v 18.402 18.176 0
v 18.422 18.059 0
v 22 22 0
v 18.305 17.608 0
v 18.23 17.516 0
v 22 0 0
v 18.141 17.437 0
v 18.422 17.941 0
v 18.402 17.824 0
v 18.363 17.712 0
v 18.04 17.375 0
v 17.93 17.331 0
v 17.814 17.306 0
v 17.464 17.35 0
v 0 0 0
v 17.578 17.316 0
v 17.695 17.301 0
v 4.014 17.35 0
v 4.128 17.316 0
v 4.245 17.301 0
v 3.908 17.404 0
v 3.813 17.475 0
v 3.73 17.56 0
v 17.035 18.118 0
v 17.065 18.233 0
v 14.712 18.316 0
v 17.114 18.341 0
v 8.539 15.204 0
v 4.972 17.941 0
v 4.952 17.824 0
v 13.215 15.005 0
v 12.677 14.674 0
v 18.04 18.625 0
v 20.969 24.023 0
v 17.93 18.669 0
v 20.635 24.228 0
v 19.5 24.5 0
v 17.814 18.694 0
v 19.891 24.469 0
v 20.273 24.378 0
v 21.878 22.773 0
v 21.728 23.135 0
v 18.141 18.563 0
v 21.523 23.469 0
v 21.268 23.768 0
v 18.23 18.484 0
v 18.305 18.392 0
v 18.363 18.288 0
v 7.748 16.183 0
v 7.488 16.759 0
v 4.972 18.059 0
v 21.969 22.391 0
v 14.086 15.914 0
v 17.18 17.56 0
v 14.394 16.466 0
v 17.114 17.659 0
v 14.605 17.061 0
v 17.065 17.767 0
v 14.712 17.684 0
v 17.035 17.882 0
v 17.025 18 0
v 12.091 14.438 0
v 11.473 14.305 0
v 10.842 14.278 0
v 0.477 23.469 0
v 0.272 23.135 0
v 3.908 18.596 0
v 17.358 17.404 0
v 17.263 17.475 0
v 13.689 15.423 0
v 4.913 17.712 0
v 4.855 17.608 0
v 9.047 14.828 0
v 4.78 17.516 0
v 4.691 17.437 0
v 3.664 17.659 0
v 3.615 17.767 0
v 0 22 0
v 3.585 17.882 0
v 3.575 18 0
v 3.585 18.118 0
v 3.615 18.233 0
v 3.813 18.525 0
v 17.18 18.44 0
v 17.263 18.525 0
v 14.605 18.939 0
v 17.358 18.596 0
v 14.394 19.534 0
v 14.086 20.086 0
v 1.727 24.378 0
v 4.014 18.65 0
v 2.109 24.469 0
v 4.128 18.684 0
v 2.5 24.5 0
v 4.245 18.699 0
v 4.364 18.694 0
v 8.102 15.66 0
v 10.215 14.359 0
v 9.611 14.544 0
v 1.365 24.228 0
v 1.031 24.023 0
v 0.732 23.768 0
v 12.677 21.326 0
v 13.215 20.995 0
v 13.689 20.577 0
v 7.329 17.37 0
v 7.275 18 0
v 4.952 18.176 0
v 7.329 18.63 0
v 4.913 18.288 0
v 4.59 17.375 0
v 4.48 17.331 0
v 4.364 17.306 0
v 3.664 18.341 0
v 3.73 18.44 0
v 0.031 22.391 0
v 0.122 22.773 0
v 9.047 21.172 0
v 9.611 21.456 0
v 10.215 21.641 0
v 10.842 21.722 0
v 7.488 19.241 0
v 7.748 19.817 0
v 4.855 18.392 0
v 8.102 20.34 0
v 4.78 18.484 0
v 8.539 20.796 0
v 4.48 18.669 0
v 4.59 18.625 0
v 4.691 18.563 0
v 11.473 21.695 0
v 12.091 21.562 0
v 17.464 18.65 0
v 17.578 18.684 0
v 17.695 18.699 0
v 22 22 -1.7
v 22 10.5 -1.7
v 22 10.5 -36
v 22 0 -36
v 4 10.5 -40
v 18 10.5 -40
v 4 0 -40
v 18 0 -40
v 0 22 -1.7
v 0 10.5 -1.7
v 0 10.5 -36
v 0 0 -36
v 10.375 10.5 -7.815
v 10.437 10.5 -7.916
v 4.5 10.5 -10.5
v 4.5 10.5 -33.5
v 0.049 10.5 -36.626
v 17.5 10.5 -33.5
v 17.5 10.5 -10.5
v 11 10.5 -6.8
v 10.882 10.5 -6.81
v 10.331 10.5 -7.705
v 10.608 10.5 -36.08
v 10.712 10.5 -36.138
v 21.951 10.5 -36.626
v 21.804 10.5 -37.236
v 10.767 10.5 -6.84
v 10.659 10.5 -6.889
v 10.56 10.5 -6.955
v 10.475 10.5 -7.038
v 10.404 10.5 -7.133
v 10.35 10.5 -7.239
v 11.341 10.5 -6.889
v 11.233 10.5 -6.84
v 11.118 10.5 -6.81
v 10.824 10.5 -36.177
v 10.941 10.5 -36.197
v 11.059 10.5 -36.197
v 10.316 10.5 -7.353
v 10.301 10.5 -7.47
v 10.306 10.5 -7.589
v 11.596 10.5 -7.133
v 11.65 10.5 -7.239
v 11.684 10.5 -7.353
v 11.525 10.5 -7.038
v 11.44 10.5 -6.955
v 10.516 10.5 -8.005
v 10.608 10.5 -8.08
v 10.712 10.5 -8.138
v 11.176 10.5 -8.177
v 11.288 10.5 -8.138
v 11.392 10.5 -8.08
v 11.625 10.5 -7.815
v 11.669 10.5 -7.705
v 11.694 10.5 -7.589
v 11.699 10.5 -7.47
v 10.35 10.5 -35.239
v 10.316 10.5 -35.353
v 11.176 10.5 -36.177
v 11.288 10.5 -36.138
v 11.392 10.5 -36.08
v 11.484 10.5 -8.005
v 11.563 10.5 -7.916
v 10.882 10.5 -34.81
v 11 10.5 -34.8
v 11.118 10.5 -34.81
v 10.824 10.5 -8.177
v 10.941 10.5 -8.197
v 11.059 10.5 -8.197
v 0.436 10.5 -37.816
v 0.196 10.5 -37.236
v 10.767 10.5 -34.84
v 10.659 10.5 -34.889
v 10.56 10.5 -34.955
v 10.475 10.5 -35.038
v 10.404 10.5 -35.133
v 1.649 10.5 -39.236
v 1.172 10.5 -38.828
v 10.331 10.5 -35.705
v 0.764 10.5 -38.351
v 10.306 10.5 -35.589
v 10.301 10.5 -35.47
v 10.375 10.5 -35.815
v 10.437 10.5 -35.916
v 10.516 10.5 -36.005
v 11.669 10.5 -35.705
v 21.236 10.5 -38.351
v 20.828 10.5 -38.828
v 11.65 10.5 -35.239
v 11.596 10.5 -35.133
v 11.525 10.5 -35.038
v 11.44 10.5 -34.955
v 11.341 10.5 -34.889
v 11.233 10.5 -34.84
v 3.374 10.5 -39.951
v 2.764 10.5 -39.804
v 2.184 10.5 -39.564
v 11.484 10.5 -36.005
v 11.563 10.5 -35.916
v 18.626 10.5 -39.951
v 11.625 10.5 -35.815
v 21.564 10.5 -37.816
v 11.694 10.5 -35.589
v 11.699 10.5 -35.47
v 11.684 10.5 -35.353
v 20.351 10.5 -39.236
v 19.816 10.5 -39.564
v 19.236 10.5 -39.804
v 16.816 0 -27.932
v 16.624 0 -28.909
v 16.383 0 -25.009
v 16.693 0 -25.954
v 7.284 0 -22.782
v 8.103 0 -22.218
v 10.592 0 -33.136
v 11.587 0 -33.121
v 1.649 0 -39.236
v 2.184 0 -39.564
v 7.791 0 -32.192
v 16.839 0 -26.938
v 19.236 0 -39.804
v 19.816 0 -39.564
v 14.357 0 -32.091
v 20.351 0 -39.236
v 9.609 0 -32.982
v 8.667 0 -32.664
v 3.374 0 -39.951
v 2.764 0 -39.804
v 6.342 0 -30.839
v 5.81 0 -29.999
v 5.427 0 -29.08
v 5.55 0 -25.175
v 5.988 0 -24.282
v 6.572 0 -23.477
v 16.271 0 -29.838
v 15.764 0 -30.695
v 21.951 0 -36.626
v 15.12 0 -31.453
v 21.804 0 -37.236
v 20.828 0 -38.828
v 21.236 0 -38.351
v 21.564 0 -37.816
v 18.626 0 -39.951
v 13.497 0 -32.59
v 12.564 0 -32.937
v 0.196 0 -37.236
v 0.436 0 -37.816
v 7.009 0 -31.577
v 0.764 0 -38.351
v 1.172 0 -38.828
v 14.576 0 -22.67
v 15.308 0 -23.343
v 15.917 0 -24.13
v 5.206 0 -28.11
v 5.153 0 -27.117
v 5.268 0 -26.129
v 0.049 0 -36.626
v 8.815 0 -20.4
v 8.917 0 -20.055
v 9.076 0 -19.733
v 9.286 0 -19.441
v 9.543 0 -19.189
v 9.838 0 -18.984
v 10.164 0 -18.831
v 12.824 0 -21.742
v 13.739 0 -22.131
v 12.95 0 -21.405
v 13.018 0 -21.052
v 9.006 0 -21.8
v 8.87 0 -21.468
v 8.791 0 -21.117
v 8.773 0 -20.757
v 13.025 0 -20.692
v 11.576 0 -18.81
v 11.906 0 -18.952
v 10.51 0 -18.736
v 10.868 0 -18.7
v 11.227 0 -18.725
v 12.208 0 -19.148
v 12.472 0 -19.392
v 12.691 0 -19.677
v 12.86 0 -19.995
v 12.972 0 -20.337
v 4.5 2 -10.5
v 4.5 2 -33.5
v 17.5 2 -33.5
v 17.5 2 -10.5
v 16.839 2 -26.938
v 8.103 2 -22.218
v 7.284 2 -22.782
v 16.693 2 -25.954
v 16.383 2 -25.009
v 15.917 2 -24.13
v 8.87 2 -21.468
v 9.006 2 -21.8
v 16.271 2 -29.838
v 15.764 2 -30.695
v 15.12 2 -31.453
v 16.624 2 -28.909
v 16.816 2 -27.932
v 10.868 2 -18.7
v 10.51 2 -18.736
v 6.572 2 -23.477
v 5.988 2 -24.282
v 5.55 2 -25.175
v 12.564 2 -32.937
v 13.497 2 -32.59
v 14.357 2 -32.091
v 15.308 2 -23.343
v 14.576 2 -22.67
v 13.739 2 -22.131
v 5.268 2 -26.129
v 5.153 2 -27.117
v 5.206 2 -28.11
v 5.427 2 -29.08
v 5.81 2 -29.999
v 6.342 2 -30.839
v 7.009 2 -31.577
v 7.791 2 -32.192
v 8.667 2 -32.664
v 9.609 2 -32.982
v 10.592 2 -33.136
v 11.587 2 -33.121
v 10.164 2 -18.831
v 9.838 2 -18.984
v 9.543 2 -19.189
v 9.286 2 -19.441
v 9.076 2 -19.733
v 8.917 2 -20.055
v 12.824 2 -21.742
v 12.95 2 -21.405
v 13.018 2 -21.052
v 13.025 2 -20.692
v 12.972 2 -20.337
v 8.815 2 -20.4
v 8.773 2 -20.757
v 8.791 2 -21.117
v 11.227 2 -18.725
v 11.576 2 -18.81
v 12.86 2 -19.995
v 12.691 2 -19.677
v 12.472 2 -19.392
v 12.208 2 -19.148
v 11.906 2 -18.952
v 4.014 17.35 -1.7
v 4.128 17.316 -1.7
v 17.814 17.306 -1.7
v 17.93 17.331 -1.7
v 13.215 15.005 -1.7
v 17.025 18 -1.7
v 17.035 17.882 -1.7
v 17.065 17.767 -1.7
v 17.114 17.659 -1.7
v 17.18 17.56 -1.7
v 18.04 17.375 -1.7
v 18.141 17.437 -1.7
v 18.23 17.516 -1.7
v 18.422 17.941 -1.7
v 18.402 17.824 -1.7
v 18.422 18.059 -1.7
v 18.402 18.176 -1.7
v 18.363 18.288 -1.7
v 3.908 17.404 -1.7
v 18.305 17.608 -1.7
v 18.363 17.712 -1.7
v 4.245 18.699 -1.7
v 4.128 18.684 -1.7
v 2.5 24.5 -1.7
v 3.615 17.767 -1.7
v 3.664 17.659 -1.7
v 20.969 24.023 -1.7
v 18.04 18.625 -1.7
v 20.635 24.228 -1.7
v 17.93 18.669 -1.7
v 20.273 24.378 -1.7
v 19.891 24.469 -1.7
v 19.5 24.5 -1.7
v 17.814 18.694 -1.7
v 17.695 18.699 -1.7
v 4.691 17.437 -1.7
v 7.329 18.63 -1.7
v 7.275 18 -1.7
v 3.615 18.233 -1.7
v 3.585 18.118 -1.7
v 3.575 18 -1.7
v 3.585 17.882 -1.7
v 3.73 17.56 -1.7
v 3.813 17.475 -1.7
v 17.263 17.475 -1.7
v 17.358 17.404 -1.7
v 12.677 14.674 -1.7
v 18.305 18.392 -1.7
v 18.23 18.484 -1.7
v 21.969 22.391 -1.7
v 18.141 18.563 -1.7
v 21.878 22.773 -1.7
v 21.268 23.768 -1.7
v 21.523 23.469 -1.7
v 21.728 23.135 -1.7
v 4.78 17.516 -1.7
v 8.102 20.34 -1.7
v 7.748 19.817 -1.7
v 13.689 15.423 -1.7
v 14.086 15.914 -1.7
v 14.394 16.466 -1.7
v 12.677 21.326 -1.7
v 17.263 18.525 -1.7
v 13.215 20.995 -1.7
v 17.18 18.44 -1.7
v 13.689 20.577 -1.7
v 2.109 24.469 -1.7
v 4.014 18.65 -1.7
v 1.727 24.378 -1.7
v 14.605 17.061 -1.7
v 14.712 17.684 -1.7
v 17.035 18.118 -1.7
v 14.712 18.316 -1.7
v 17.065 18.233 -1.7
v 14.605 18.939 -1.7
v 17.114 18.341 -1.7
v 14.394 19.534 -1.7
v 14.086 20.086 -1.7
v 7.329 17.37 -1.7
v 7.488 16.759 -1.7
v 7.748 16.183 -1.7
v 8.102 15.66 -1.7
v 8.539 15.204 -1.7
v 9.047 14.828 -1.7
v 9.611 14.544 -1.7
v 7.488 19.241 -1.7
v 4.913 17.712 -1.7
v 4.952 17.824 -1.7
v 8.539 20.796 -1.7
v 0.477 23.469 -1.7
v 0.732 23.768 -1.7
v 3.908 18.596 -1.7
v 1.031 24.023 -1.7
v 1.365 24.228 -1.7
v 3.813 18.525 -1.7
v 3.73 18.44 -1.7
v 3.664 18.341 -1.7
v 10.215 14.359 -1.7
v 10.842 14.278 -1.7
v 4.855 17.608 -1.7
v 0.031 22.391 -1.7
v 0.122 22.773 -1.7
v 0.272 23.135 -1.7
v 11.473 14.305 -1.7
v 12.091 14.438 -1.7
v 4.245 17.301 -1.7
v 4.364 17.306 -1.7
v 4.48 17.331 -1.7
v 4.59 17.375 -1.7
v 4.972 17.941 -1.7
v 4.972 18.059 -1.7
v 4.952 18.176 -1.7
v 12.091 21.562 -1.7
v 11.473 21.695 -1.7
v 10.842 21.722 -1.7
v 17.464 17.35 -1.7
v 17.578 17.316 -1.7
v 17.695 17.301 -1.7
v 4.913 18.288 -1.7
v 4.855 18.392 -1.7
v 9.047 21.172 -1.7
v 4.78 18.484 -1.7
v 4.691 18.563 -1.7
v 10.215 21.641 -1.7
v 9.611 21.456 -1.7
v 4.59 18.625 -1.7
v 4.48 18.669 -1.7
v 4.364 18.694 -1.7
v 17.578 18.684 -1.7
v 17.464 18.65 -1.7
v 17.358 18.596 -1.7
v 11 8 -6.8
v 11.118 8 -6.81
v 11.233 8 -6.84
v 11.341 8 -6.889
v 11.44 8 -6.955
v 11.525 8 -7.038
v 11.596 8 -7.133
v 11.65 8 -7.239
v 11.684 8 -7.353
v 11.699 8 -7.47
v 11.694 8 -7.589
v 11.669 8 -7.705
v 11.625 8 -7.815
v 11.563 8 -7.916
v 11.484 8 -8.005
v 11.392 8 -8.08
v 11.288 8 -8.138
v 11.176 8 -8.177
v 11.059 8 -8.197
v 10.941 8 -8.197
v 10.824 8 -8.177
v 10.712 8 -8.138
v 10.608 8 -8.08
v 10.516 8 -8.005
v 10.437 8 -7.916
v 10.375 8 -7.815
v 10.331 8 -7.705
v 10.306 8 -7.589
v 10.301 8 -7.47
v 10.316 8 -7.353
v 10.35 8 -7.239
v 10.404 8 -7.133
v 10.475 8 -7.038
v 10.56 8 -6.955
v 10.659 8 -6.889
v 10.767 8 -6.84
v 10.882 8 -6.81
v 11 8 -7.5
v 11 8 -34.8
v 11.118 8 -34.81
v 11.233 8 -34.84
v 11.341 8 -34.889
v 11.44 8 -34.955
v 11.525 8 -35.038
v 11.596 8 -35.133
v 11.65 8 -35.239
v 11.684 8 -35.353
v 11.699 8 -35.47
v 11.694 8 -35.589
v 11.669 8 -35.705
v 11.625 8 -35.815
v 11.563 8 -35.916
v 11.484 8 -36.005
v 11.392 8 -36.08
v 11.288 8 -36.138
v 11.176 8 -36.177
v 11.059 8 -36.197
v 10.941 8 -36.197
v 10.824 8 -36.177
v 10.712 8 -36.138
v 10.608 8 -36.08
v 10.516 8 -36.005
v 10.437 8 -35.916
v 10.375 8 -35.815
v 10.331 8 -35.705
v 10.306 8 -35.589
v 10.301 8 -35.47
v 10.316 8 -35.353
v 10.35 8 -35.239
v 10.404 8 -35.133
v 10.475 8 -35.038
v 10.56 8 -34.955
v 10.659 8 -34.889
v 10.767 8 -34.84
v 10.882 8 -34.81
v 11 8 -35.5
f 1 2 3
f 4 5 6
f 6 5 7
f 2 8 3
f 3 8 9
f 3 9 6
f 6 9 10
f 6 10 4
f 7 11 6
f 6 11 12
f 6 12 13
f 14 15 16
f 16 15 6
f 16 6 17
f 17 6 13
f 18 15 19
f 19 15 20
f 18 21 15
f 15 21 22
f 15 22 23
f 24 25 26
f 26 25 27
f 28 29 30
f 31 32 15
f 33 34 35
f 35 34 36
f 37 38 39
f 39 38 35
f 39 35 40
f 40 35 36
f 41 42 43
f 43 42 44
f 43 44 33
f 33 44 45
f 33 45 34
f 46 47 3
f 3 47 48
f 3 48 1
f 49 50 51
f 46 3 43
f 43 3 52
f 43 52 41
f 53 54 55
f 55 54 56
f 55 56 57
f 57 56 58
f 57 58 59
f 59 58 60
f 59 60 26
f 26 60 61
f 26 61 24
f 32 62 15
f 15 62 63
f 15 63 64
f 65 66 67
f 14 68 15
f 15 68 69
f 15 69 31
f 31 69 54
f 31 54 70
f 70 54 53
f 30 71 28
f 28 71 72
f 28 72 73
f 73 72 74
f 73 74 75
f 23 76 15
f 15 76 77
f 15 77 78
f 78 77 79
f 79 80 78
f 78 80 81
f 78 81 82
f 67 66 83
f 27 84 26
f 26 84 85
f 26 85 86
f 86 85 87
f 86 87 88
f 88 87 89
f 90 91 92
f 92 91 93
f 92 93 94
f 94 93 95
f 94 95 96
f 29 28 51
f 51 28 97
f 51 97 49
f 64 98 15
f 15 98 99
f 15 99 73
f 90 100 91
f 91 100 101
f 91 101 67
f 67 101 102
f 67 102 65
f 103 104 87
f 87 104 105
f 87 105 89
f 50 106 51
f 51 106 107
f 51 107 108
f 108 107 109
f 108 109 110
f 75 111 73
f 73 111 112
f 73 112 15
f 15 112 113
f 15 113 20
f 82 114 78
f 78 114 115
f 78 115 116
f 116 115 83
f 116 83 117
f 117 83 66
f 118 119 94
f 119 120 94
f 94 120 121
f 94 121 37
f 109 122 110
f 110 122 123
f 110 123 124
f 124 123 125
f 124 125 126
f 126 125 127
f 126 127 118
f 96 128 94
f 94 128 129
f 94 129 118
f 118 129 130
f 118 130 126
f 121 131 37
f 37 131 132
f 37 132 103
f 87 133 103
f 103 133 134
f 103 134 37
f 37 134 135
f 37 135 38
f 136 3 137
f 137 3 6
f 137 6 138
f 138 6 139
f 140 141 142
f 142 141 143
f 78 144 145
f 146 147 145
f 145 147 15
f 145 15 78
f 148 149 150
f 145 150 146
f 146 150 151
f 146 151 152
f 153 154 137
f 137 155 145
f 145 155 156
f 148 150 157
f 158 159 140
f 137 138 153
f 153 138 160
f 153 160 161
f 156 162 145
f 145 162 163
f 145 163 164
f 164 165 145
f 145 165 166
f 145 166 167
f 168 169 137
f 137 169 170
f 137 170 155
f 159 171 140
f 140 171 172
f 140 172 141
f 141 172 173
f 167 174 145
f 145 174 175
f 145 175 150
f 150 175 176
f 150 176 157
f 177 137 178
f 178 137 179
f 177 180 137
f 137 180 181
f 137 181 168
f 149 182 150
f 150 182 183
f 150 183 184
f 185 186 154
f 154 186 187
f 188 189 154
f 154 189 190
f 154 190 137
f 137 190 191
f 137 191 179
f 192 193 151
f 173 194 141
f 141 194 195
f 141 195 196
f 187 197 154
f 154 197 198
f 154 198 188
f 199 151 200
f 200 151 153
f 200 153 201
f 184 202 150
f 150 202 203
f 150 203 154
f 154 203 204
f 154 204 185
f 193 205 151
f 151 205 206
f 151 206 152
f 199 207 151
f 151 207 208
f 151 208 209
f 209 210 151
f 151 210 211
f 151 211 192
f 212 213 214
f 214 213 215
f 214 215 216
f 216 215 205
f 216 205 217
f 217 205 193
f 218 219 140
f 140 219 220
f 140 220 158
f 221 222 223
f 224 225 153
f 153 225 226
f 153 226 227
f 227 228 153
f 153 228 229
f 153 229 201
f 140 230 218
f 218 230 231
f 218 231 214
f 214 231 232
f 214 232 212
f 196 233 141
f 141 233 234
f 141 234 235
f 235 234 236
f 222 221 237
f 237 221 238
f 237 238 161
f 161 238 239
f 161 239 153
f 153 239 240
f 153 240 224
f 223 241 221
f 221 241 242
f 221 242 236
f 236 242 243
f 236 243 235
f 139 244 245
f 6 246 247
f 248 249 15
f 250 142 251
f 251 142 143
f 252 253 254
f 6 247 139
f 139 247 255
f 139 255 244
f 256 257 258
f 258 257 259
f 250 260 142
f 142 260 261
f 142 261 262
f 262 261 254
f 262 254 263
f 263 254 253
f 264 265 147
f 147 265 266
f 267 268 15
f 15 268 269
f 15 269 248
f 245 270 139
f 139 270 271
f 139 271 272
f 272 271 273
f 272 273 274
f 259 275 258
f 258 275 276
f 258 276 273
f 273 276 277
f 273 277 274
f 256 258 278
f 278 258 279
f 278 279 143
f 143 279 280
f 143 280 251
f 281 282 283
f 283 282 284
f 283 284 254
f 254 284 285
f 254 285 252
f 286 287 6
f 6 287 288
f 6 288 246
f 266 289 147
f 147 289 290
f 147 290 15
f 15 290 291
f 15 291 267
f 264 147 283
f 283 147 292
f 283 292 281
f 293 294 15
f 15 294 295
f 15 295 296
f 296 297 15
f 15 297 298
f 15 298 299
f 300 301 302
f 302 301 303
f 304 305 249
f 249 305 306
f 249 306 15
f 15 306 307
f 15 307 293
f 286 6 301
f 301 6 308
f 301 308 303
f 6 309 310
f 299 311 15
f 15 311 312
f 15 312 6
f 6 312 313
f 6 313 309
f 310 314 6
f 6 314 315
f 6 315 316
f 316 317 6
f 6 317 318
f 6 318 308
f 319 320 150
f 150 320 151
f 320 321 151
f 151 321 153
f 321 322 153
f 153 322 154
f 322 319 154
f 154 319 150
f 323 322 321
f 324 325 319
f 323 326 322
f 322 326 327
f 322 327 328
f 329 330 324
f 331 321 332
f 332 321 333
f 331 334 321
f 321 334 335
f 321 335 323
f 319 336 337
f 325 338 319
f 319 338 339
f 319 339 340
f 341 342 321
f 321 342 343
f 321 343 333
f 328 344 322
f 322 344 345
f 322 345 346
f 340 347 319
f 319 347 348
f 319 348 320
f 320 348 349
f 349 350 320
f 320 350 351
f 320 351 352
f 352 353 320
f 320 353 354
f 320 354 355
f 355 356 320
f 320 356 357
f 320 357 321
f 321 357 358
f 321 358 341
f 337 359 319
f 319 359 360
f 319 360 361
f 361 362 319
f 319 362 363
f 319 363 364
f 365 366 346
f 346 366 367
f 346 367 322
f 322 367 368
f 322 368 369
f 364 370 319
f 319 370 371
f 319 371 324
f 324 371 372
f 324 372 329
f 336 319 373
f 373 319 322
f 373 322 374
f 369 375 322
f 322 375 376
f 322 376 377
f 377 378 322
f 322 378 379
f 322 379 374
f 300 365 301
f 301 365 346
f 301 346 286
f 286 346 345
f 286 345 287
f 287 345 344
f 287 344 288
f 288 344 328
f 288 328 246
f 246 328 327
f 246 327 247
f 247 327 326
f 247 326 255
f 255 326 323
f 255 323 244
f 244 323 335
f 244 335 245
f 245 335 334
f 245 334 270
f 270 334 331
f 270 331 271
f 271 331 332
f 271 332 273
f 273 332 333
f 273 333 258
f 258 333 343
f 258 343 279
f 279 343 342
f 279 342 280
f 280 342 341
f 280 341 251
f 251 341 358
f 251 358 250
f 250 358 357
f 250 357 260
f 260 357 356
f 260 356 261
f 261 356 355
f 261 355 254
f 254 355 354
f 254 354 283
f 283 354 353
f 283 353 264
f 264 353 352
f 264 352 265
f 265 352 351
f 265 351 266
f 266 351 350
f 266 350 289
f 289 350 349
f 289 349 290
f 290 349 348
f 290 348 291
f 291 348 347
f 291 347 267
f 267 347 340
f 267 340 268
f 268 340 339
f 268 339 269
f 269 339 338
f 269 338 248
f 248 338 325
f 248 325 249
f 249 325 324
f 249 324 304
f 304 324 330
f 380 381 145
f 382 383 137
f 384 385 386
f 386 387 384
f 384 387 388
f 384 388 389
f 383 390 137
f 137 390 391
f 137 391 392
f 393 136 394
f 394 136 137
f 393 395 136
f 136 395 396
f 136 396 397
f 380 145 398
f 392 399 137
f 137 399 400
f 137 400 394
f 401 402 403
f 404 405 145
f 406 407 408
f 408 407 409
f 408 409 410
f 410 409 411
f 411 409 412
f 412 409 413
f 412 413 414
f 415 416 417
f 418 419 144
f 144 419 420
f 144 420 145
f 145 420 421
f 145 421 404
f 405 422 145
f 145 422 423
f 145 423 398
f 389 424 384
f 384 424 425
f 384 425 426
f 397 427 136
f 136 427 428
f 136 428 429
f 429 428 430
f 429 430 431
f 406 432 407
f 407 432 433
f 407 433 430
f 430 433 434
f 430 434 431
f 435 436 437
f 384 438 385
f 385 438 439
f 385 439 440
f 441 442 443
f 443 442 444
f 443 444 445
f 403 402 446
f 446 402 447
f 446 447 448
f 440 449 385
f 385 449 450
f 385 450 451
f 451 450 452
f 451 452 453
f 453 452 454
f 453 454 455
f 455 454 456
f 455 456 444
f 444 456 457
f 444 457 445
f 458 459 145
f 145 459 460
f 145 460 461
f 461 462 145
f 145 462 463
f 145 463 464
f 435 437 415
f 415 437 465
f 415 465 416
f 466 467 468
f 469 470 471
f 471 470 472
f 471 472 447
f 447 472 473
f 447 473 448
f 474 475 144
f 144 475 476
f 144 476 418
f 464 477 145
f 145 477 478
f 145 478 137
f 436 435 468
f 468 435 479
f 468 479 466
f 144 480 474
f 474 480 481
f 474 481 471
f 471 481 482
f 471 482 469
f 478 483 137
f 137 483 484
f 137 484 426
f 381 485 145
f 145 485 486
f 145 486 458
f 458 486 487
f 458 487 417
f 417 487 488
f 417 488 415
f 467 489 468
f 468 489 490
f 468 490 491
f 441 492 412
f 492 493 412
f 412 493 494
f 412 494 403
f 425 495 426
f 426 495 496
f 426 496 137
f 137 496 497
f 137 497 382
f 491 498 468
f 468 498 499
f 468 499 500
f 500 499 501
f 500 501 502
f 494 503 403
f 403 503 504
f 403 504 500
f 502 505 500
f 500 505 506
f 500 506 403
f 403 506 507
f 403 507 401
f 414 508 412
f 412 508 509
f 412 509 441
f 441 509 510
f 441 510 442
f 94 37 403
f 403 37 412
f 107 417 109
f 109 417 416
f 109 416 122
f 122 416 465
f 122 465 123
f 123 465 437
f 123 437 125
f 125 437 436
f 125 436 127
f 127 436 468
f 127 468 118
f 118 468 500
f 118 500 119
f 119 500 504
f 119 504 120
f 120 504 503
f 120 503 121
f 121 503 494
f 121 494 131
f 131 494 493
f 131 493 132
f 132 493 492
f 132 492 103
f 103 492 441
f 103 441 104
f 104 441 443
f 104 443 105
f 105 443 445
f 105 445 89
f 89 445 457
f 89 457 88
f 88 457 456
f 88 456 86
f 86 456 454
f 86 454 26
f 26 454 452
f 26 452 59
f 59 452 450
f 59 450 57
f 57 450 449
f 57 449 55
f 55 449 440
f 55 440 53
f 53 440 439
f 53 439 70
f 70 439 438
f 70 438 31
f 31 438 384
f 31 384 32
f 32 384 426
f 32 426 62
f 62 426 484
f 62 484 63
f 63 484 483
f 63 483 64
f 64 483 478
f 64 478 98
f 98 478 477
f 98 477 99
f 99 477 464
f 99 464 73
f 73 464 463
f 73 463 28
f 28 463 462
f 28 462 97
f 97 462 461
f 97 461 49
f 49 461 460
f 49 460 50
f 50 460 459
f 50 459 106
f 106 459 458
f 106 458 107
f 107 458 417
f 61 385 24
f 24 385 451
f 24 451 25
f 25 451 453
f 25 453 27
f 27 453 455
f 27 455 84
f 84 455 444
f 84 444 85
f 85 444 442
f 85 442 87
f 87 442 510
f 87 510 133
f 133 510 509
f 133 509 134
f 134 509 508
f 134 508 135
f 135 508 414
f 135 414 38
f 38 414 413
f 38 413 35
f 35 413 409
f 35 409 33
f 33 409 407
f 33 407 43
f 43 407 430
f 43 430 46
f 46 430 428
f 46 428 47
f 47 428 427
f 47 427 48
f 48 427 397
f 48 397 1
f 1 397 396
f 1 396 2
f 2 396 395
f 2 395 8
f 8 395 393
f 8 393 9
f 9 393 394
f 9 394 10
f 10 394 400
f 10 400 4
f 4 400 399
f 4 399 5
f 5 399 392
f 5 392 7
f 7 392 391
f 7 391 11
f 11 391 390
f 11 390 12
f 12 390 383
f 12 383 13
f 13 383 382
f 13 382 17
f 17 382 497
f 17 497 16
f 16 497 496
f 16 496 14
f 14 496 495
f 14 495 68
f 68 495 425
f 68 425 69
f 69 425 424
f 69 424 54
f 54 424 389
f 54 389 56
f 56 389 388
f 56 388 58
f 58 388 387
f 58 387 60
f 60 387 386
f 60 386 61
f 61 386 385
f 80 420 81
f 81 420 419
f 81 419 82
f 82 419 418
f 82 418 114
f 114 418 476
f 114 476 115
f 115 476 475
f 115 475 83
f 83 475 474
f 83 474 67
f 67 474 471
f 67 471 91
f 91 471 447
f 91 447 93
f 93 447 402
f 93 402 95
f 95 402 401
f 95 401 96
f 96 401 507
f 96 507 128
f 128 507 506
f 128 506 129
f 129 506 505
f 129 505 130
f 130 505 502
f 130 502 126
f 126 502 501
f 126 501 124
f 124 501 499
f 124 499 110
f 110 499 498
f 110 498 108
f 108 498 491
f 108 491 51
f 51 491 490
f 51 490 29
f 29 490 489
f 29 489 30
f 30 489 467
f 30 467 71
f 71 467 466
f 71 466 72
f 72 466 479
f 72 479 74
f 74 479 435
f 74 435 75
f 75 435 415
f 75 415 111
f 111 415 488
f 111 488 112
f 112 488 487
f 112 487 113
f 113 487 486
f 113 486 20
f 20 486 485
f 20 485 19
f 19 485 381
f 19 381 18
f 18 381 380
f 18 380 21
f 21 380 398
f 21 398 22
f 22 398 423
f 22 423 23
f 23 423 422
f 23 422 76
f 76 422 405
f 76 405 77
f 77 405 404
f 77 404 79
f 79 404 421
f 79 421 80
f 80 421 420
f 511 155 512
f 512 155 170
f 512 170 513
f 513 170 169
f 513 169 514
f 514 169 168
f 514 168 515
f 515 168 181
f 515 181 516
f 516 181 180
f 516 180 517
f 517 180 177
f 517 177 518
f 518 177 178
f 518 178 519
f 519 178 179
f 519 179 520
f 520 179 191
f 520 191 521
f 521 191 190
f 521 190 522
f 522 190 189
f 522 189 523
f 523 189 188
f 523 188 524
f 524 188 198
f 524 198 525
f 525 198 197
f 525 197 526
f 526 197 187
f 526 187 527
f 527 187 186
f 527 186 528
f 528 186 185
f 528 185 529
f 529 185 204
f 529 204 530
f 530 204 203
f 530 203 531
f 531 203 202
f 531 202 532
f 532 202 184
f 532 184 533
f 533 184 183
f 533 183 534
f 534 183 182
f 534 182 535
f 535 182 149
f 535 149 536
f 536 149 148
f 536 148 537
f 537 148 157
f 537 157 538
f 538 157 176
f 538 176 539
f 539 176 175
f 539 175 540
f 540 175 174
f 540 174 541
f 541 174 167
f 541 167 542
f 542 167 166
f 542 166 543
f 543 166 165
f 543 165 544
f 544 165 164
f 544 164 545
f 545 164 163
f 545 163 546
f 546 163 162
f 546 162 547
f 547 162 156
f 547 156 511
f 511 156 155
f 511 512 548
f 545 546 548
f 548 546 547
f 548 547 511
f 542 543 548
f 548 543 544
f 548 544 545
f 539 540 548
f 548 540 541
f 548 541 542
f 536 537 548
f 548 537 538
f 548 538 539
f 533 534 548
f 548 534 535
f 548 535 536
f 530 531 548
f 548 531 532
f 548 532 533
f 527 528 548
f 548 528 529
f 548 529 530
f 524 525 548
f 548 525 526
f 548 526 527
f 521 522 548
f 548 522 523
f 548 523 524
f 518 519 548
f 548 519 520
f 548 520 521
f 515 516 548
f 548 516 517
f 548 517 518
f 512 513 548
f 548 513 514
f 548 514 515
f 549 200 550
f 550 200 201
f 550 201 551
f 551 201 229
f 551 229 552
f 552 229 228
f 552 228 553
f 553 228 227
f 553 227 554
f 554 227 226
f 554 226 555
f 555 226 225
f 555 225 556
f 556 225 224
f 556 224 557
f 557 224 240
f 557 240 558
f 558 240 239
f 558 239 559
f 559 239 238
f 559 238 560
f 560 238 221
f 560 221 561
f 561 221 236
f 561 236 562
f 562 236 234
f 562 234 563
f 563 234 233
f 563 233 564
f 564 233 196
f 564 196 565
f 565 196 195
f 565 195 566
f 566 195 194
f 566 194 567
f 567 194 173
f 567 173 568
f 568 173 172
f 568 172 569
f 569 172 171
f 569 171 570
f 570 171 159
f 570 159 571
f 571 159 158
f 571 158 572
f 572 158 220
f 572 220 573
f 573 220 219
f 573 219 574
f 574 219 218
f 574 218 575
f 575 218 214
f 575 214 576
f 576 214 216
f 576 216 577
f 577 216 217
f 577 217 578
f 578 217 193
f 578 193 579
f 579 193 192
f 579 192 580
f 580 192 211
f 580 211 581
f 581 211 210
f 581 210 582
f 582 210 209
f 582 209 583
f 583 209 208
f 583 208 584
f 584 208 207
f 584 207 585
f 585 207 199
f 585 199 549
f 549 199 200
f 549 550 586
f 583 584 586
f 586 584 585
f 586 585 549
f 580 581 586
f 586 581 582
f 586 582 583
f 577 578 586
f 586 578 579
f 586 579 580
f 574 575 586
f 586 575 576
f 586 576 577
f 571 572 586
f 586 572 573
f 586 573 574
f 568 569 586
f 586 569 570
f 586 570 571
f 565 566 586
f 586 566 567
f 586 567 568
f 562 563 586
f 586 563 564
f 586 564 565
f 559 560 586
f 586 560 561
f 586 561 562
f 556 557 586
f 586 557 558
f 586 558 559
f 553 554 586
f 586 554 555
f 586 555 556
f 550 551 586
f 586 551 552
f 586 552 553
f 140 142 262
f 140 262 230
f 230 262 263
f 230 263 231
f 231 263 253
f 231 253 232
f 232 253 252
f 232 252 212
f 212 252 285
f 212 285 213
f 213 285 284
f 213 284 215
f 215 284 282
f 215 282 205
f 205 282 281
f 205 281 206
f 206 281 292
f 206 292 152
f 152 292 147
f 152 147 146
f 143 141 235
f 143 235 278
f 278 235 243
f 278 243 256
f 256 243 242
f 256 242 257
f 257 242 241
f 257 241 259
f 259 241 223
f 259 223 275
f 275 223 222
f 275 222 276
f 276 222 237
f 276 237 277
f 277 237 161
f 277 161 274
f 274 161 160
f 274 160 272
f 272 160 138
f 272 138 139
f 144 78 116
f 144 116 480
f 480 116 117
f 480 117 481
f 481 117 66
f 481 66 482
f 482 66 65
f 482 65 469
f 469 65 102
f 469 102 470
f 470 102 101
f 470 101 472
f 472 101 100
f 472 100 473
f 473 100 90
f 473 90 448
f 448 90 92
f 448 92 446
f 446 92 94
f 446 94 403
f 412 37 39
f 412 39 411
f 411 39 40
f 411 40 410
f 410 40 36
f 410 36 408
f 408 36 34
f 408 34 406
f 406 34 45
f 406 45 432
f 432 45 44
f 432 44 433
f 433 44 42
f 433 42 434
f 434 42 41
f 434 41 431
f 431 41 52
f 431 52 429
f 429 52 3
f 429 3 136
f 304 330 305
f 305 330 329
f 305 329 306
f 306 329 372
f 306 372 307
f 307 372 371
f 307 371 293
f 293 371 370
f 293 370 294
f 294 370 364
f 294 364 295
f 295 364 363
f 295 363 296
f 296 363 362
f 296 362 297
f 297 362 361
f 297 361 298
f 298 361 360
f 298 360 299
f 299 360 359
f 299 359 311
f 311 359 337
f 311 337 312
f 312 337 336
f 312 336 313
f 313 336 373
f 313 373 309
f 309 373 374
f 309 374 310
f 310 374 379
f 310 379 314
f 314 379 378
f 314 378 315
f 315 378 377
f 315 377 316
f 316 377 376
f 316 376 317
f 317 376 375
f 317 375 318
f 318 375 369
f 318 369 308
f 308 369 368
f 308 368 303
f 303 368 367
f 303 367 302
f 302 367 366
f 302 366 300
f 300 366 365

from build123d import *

# Parameters (mm, degrees)
SKETCH1_W           = 22
SKETCH1_H           = 40
BOSS_EXTRUDE1_DEPTH = 10.5
SKETCH2_W           = 13
SKETCH2_H           = 23
CUT_EXTRUDE1_DEPTH  = 8.5
SKETCH3_R           = 5.85
CUT_EXTRUDE2_DEPTH  = 47.435439053
SKETCH4_W           = 22
SKETCH4_H           = 1.7
BOSS_EXTRUDE2_DEPTH = 14
SKETCH5_R           = 3.725
CUT_EXTRUDE3_DEPTH  = 51.508811113
SKETCH5_3_R         = 3.725
SKETCH5_3_R_2       = 0.7
CUT_EXTRUDE4_DEPTH  = 10
SKETCH6_R           = 0.7
CUT_EXTRUDE5_DEPTH  = 2.5
FILLET1_R           = 4
FILLET2_R           = 2.5
CUT_EXTRUDE6_DEPTH  = 10


with BuildPart() as part:
    # Sketch1 → Boss-Extrude1 (new body)
    with BuildSketch(Plane(origin=(0, 0, 0), x_dir=(1, 0, 0), z_dir=(0, 1, 0))):
        with Locations((11, 20)):
            Rectangle(SKETCH1_W, SKETCH1_H)
    extrude(amount=BOSS_EXTRUDE1_DEPTH)

    # Sketch2 → Cut-Extrude1 (cut)
    with BuildSketch(Plane(origin=(0, 10.5, 0), x_dir=(1, 0, 0), z_dir=(0, 1, 0))):
        with Locations((11, 22)):
            Rectangle(SKETCH2_W, SKETCH2_H)
    extrude(amount=-CUT_EXTRUDE1_DEPTH, mode=Mode.SUBTRACT)

    # Sketch3 → Cut-Extrude2 (cut, through all)
    with BuildSketch(Plane(origin=(0, 2, 0), x_dir=(1, 0, 0), z_dir=(0, 1, 0))):
        with Locations((11, 27.3)):
            Circle(SKETCH3_R)
    extrude(amount=-CUT_EXTRUDE2_DEPTH, mode=Mode.SUBTRACT)

    # Sketch4 → Boss-Extrude2 (add)
    with BuildSketch(Plane(origin=(0, 10.5, 0), x_dir=(1, 0, 0), z_dir=(0, 1, 0))):
        with Locations((11, 0.85)):
            Rectangle(SKETCH4_W, SKETCH4_H)
    extrude(amount=BOSS_EXTRUDE2_DEPTH)

    # Sketch5 → Cut-Extrude3 (cut, through all)
    with BuildSketch(Plane(origin=(0, 0, -1.7), x_dir=(-1, 0, 0), z_dir=(0, 0, -1))):
        with Locations((-11, 18)):
            Circle(SKETCH5_R)
    extrude(amount=-CUT_EXTRUDE3_DEPTH, mode=Mode.SUBTRACT)

    # Sketch5<3> → Cut-Extrude4 (cut)
    with BuildSketch(Plane(origin=(0, 0, -1.7), x_dir=(-1, 0, 0), z_dir=(0, 0, -1))):
        with Locations((-11, 18)):
            Circle(SKETCH5_3_R)
        with Locations((-17.725, 18)):
            Circle(SKETCH5_3_R_2)
        with Locations((-4.275, 18)):
            Circle(SKETCH5_3_R_2)
    extrude(amount=-CUT_EXTRUDE4_DEPTH, mode=Mode.SUBTRACT)

    # Sketch6 → Cut-Extrude5 (cut)
    with BuildSketch(Plane(origin=(0, 10.5, 0), x_dir=(1, 0, 0), z_dir=(0, 1, 0))):
        with Locations((11, 35.5)):
            Circle(SKETCH6_R)
        with Locations((11, 7.5)):
            Circle(SKETCH6_R)
    extrude(amount=-CUT_EXTRUDE5_DEPTH, mode=Mode.SUBTRACT)

    # Fillet1
    fillet1_edges = [part.edges().sort_by_distance(p)[0] for p in [
        (0, 5.25, -40),
        (22, 5.25, -40),
    ]]
    fillet(fillet1_edges, radius=FILLET1_R)

    # Fillet2
    fillet2_edges = [part.edges().sort_by_distance(p)[0] for p in [
        (0, 24.5, -0.85),
        (22, 24.5, -0.85),
    ]]
    fillet(fillet2_edges, radius=FILLET2_R)

    # Sketch7 → Cut-Extrude6 (cut)
    with BuildSketch(Plane(origin=(0, 2, 0), x_dir=(1, 0, 0), z_dir=(0, 1, 0))):
        with BuildLine():
            ThreePointArc((9.023699499, 21.833388834), (10.872986109, 18.699861887), (12.803373856, 21.784088734))
            ThreePointArc((12.803373856, 21.784088734), (10.909436036, 21.494356303), (9.023699499, 21.833388834))
        make_face()
    extrude(amount=-CUT_EXTRUDE6_DEPTH, mode=Mode.SUBTRACT)


solid = part.part
